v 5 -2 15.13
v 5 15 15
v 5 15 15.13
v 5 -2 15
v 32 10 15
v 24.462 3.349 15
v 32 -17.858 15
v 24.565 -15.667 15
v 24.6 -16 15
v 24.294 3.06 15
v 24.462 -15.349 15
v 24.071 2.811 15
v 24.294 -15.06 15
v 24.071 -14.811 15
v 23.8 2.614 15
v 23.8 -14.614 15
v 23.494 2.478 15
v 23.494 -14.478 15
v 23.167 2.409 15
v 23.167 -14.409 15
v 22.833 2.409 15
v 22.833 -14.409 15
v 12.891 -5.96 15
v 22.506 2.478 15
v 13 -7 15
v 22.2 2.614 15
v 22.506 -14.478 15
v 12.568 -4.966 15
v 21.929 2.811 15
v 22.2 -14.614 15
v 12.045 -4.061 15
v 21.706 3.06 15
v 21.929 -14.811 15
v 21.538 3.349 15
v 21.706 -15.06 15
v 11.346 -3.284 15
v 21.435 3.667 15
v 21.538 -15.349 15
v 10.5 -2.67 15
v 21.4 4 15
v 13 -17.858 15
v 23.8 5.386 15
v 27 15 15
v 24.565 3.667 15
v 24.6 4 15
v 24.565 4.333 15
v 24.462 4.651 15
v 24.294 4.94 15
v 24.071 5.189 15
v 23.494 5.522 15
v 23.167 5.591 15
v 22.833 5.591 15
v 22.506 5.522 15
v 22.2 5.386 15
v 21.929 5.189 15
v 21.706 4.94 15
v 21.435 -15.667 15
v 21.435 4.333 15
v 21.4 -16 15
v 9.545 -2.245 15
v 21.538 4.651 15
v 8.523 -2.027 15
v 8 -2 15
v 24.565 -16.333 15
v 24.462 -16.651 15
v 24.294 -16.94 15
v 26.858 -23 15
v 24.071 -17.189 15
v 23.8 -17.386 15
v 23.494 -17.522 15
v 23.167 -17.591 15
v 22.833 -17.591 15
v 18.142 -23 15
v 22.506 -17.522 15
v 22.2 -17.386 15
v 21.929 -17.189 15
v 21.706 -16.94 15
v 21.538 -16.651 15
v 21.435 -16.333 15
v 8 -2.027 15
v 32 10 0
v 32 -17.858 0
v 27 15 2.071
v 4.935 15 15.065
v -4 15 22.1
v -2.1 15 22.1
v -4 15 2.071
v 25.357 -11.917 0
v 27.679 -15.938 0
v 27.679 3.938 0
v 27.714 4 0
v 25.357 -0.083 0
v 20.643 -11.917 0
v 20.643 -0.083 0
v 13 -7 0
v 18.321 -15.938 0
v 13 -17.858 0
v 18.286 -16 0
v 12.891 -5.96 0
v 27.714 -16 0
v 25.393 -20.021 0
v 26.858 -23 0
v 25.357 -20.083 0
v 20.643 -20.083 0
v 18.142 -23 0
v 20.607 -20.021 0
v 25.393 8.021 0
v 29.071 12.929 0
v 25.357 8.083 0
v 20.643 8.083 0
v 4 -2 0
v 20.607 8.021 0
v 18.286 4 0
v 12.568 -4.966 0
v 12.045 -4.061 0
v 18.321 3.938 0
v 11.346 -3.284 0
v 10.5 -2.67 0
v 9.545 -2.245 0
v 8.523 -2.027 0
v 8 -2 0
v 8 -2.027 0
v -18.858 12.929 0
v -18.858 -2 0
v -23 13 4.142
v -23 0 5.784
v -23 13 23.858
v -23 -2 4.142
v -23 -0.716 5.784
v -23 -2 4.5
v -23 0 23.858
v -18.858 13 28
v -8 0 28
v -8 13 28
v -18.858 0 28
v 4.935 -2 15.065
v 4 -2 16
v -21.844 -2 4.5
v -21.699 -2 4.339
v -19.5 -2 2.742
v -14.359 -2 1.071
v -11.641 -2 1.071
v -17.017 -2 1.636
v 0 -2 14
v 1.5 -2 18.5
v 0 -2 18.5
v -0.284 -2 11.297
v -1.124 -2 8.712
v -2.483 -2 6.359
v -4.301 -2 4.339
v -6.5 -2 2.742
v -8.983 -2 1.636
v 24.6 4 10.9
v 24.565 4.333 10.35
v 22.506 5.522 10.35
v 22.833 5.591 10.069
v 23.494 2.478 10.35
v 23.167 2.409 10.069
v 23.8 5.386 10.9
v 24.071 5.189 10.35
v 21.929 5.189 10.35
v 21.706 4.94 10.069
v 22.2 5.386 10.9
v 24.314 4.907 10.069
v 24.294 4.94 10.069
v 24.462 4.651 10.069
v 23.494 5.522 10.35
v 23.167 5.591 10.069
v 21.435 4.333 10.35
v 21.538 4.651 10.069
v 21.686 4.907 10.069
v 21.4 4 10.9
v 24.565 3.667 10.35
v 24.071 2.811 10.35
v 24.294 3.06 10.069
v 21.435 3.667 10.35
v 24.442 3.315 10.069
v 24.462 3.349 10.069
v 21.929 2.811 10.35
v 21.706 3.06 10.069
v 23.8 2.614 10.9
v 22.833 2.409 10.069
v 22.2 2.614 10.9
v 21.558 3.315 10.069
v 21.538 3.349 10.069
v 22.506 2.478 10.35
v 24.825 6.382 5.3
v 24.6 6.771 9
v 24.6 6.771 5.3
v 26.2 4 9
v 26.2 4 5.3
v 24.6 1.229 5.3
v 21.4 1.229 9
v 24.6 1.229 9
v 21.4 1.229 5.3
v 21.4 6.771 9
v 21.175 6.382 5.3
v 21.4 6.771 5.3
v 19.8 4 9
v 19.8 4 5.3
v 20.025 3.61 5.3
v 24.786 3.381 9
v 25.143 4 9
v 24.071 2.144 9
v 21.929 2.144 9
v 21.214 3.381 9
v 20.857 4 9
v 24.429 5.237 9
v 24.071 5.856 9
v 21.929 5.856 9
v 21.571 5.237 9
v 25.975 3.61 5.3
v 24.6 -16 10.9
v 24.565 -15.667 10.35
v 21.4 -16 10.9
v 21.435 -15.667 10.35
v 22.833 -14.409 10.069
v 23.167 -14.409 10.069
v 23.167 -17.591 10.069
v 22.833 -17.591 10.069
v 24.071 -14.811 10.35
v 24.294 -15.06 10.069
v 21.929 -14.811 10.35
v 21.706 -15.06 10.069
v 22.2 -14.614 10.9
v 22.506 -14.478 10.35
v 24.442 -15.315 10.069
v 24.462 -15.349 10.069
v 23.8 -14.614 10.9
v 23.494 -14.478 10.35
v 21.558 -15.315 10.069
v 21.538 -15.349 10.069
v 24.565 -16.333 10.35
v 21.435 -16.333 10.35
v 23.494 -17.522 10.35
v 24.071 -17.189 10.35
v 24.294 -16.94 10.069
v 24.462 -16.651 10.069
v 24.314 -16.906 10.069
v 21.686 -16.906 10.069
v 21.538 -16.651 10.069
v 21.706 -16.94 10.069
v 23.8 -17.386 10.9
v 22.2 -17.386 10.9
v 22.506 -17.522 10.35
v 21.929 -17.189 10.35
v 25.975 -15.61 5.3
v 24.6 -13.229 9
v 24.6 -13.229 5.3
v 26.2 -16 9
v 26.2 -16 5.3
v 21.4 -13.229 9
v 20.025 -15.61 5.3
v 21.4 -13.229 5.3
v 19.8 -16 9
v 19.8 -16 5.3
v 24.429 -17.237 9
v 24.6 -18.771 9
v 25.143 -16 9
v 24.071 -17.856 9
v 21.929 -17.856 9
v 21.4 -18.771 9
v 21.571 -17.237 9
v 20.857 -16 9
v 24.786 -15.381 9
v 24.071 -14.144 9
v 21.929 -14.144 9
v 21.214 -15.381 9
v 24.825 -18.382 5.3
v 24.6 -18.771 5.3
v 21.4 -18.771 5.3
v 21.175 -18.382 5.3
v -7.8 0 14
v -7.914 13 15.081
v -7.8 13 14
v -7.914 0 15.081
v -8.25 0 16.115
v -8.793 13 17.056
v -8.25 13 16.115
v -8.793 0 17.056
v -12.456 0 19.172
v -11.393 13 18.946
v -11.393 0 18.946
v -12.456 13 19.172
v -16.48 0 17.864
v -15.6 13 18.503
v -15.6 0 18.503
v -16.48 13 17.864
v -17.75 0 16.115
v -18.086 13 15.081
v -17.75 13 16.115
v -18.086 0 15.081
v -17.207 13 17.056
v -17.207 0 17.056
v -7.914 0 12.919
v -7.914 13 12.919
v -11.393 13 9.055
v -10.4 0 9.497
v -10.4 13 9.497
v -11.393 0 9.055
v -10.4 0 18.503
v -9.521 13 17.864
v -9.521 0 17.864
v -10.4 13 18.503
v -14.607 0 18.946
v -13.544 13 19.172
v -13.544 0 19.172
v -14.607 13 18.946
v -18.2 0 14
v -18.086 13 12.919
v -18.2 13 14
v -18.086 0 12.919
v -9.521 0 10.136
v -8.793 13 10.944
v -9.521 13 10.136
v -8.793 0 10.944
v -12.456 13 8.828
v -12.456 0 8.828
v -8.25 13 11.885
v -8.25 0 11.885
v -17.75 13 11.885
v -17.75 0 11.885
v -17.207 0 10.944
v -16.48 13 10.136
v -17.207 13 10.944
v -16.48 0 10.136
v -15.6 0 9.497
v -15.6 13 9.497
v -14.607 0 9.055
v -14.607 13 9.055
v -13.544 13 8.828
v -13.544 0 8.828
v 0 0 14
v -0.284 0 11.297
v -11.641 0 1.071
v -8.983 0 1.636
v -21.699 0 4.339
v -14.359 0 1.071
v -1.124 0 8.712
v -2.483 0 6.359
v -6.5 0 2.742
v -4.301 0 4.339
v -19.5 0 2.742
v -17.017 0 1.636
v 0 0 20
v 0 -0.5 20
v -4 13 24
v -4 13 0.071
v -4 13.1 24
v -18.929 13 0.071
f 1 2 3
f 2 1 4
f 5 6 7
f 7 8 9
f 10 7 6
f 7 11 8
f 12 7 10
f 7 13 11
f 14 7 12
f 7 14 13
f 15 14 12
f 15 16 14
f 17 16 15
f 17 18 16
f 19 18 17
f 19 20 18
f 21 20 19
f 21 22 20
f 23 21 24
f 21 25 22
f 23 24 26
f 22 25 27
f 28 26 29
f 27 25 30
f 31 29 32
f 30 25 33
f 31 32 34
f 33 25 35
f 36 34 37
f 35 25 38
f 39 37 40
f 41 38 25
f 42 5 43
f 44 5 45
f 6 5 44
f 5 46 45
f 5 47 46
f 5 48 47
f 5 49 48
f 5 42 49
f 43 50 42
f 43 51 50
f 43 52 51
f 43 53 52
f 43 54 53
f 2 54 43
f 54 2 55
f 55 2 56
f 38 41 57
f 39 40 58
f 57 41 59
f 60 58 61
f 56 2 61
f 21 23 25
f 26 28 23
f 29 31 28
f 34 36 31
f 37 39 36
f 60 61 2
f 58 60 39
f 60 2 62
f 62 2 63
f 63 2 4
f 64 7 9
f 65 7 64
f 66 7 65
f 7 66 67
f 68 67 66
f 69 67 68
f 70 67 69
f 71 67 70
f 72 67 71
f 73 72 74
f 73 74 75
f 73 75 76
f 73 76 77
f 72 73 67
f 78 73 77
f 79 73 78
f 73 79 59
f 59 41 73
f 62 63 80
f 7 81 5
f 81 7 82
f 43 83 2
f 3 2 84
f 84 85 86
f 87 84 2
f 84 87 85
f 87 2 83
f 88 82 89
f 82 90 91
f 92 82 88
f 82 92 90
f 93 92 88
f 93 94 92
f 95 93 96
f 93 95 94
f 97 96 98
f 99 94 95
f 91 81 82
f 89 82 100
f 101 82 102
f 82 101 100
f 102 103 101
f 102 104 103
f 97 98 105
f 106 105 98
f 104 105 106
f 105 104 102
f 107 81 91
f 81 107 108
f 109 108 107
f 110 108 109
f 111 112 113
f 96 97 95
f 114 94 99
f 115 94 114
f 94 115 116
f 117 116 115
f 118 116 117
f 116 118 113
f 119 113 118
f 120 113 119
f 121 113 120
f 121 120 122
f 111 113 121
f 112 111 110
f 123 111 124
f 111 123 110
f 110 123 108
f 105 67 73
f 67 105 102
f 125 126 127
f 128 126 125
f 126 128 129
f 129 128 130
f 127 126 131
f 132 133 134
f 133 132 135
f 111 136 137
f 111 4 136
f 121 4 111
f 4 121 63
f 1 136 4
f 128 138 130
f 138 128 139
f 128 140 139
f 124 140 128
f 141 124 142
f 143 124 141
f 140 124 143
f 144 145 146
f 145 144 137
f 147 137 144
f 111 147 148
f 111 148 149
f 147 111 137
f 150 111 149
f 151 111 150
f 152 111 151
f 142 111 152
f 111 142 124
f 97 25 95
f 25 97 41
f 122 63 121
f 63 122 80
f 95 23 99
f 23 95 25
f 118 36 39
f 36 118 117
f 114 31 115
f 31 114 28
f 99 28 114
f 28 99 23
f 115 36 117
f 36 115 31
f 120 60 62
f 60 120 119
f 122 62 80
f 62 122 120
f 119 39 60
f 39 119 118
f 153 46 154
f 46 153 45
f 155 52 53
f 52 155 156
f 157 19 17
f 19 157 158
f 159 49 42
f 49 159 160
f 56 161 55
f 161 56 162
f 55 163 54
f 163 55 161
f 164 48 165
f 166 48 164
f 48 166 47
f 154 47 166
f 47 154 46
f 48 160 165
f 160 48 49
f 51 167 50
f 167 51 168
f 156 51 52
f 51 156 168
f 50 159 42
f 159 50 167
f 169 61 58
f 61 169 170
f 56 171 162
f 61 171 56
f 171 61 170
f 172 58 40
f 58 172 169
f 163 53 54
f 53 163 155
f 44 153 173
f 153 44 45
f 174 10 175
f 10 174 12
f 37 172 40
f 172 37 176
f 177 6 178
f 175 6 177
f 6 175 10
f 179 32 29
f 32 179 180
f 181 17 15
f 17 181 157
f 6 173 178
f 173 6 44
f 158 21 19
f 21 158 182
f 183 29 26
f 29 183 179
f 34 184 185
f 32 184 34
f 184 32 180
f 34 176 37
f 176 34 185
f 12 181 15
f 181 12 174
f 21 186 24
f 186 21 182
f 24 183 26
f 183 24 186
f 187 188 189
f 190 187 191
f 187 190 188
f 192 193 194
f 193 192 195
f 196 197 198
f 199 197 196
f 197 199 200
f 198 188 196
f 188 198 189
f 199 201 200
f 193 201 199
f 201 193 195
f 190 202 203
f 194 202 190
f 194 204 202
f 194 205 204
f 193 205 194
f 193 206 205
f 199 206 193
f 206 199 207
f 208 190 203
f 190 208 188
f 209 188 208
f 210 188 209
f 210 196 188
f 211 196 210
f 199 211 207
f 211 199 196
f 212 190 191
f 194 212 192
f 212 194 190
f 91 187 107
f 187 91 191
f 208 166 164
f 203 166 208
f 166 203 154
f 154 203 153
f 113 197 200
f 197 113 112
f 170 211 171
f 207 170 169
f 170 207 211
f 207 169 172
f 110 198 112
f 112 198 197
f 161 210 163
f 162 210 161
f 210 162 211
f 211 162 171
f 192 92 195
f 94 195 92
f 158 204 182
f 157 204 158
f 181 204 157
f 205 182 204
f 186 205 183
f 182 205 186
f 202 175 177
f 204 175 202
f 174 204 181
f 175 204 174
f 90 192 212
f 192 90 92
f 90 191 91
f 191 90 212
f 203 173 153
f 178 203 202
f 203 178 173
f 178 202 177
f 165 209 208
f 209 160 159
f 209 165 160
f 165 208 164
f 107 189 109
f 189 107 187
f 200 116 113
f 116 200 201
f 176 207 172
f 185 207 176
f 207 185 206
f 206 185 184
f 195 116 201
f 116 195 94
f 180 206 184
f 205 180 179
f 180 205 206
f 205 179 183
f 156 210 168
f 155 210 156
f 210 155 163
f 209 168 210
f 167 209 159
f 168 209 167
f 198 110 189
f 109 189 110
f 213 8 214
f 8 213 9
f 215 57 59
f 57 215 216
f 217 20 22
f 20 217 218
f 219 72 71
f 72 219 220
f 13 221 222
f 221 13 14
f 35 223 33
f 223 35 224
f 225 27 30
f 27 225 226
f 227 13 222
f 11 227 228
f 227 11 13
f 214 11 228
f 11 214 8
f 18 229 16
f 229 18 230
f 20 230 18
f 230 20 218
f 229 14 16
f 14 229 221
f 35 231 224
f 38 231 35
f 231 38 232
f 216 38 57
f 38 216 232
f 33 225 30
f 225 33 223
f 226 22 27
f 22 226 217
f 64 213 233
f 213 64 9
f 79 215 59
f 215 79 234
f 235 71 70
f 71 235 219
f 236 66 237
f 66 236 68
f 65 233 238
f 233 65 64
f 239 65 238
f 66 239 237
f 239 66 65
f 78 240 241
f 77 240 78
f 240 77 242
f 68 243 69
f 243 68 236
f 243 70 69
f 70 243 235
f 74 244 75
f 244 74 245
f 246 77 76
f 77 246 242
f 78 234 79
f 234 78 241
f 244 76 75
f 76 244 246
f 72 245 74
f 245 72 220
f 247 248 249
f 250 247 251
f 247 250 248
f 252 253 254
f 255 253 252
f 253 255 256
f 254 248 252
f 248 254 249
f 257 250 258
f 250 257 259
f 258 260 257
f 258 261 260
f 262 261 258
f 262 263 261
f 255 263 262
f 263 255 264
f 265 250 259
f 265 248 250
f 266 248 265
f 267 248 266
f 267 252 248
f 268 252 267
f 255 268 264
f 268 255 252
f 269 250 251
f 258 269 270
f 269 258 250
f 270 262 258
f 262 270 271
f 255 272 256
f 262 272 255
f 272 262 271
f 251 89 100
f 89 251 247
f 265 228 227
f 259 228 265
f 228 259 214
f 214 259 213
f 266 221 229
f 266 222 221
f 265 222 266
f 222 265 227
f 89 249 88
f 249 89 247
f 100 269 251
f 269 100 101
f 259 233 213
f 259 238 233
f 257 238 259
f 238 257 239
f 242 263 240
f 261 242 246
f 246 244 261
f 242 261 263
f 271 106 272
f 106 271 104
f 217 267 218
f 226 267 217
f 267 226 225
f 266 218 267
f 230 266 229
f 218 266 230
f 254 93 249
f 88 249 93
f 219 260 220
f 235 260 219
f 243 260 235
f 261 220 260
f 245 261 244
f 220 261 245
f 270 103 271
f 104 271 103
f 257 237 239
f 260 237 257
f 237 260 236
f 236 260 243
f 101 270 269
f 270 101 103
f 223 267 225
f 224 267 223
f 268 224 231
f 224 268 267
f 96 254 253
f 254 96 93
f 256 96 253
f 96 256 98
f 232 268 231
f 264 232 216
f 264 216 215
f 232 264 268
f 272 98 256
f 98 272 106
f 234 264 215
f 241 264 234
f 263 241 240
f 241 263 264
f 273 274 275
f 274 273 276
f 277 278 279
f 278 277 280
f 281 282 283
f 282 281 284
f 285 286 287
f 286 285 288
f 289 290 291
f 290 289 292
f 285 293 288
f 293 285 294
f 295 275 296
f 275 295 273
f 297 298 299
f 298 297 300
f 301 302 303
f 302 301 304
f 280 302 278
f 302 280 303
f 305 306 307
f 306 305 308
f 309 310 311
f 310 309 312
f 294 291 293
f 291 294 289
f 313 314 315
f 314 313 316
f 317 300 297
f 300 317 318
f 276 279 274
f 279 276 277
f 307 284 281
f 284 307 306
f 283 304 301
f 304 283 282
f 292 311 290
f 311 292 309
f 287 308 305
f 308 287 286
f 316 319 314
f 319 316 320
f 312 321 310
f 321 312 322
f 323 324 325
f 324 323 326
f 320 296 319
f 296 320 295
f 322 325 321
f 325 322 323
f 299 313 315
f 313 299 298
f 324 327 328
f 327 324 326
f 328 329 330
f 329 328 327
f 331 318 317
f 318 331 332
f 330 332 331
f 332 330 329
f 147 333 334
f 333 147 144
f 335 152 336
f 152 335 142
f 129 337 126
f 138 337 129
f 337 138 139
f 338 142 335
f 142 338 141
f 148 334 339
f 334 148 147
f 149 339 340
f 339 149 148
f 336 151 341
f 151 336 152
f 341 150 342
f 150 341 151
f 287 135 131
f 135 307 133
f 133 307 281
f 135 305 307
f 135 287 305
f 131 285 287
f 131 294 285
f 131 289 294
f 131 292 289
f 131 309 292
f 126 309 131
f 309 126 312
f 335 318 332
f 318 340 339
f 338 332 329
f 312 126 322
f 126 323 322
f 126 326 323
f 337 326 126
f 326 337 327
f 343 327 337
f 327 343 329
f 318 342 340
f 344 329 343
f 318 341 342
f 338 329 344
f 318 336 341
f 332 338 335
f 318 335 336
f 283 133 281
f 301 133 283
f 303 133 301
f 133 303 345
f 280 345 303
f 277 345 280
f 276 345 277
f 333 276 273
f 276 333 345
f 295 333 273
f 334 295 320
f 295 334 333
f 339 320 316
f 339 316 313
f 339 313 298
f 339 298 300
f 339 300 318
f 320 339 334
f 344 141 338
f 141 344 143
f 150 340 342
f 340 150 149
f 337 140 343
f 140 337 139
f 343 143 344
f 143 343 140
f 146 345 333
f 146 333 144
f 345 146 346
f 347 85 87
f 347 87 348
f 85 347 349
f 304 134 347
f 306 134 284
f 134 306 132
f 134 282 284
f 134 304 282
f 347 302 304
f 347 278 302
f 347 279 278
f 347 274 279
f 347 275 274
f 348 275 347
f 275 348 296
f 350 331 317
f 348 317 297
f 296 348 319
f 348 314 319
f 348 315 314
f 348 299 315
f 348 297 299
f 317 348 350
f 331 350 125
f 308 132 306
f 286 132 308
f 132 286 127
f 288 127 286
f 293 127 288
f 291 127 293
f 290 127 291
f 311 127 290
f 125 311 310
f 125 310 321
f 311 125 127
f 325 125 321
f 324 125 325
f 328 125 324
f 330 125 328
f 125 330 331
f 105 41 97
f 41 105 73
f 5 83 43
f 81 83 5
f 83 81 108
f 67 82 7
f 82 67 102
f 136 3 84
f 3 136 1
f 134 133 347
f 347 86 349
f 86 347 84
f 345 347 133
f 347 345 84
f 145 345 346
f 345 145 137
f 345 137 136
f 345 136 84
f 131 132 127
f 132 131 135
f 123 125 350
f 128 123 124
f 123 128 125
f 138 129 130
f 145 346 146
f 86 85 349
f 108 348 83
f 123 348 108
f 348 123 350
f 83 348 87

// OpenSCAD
// PRUSA iteration3
// PSU-Y reinforcement part 
// GNU GPL v3
// Josef Průša <iam@josefprusa.cz> and contributors
// http://www.reprap.org/wiki/Prusa_Mendel
// http://prusamendel.org

module base()
{
union(){
    difference(){
        union(){
        translate([ 5, -23, 0 ]) cube([ 27, 38, 15 ]);  // horizontal plate
        translate([ -23, -2, 0 ]) cube([ 28, 17, 28 ]);  // Y_Corner block    
        }
        translate( [ 4 , -25 , -1 ] ) cube( [ 9 , 23 , 18 ] );  //  holder side cut
    }
    difference(){    
        translate([ 8, -7, 0 ]) cube([ 5, 5, 15 ]);  // fillet block
        translate([ 8, -7, -1 ]) cylinder( h = 28, r = 5, $fn=30);  // fillet cut
        }
    }
}


module cutout()
    {
    translate([ 23, 4 , -2 ]) cylinder( h = 20, r = 1.6, $fn=30);  // M3 hole A
    translate([ 23, 4 , -1 ]) cylinder( h = 10, r = 3.2, $fn=6);  // M3 nut body A        
    translate([ 23, 4 , -1 ]) cylinder( h = 14, r1 = 3.2, r1 = 5, $fn=6);  // M3 nut hole fillet A
        
    translate([ 23, -16 , -2 ]) cylinder( h = 20, r = 1.6, $fn=30);  // M3 hole B
    translate([ 23, -16 , -1 ]) cylinder( h = 10, r = 3.2, $fn=6);  // M3 nut body B
    translate([ 23, -16 , -1 ]) cylinder( h = 14, r1 = 3.2, r1 = 5, $fn=6);  // M3 nut hole B fillet

    translate([ -13, 14 , 14 ]) rotate([90,0,0]) cylinder( h = 25, r = 5.2, $fn=30);  // threaded rod
    
    translate([ -13, 0 , 14 ]) rotate([90,0,0]) cylinder( h = 4, r = 13, $fn=30);  // washer
    translate([ -29, -7 , 14 ])  cube([ 29, 7, 18 ]);  // washer upper cut
    
    translate([ -24, 13 , -1 ]) cube([ 20, 15, 30 ]);  // Y_Corner cutaway

    //vertical corners 45 degree cut
    translate( [ 12, -31 , -2 ] ) rotate( [0,0,45] ) cube([ 10 , 10 , 21 ]);  
    translate([ 33,  9, -2 ])  rotate( [0,0,45] ) cube([ 10, 10, 21 ]);  
    translate([ 33, -31, -2 ]) rotate( [0,0,45] ) cube([ 10, 10, 21 ]);  

    // horizontal corners 45 degree cut
    translate([ -8.5, -8, 28.5 ]) rotate( [0,45,0] ) cube([ 19, 40, 20 ]);  
    translate([ -31, -6, 30 ]) rotate( [0,45,0])  cube([ 10, 35, 10 ]);  
    translate([ -31, -6, -2 ]) rotate( [0,45,0] ) cube([ 10, 35, 10 ]);  
    translate([ -26, -4,  2.5 ]) rotate( [45,0,0] ) cube([ 5, 5, 5 ]);  
    translate([ -1, -4, 16.5 ]) rotate( [45,0,0] ) cube([ 5, 5, 5 ]);  
    translate([ -5, 16.6, 20.5 ]) rotate( [45,0,0] ) cube([ 5, 5, 5 ]);  
    translate([ -30, 15, -5 ]) rotate( [45,0,0] ) cube([ 70, 5, 5 ]);  
}

module final_part(){
difference()
{
    base();
    cutout();
    }
}

final_part();
